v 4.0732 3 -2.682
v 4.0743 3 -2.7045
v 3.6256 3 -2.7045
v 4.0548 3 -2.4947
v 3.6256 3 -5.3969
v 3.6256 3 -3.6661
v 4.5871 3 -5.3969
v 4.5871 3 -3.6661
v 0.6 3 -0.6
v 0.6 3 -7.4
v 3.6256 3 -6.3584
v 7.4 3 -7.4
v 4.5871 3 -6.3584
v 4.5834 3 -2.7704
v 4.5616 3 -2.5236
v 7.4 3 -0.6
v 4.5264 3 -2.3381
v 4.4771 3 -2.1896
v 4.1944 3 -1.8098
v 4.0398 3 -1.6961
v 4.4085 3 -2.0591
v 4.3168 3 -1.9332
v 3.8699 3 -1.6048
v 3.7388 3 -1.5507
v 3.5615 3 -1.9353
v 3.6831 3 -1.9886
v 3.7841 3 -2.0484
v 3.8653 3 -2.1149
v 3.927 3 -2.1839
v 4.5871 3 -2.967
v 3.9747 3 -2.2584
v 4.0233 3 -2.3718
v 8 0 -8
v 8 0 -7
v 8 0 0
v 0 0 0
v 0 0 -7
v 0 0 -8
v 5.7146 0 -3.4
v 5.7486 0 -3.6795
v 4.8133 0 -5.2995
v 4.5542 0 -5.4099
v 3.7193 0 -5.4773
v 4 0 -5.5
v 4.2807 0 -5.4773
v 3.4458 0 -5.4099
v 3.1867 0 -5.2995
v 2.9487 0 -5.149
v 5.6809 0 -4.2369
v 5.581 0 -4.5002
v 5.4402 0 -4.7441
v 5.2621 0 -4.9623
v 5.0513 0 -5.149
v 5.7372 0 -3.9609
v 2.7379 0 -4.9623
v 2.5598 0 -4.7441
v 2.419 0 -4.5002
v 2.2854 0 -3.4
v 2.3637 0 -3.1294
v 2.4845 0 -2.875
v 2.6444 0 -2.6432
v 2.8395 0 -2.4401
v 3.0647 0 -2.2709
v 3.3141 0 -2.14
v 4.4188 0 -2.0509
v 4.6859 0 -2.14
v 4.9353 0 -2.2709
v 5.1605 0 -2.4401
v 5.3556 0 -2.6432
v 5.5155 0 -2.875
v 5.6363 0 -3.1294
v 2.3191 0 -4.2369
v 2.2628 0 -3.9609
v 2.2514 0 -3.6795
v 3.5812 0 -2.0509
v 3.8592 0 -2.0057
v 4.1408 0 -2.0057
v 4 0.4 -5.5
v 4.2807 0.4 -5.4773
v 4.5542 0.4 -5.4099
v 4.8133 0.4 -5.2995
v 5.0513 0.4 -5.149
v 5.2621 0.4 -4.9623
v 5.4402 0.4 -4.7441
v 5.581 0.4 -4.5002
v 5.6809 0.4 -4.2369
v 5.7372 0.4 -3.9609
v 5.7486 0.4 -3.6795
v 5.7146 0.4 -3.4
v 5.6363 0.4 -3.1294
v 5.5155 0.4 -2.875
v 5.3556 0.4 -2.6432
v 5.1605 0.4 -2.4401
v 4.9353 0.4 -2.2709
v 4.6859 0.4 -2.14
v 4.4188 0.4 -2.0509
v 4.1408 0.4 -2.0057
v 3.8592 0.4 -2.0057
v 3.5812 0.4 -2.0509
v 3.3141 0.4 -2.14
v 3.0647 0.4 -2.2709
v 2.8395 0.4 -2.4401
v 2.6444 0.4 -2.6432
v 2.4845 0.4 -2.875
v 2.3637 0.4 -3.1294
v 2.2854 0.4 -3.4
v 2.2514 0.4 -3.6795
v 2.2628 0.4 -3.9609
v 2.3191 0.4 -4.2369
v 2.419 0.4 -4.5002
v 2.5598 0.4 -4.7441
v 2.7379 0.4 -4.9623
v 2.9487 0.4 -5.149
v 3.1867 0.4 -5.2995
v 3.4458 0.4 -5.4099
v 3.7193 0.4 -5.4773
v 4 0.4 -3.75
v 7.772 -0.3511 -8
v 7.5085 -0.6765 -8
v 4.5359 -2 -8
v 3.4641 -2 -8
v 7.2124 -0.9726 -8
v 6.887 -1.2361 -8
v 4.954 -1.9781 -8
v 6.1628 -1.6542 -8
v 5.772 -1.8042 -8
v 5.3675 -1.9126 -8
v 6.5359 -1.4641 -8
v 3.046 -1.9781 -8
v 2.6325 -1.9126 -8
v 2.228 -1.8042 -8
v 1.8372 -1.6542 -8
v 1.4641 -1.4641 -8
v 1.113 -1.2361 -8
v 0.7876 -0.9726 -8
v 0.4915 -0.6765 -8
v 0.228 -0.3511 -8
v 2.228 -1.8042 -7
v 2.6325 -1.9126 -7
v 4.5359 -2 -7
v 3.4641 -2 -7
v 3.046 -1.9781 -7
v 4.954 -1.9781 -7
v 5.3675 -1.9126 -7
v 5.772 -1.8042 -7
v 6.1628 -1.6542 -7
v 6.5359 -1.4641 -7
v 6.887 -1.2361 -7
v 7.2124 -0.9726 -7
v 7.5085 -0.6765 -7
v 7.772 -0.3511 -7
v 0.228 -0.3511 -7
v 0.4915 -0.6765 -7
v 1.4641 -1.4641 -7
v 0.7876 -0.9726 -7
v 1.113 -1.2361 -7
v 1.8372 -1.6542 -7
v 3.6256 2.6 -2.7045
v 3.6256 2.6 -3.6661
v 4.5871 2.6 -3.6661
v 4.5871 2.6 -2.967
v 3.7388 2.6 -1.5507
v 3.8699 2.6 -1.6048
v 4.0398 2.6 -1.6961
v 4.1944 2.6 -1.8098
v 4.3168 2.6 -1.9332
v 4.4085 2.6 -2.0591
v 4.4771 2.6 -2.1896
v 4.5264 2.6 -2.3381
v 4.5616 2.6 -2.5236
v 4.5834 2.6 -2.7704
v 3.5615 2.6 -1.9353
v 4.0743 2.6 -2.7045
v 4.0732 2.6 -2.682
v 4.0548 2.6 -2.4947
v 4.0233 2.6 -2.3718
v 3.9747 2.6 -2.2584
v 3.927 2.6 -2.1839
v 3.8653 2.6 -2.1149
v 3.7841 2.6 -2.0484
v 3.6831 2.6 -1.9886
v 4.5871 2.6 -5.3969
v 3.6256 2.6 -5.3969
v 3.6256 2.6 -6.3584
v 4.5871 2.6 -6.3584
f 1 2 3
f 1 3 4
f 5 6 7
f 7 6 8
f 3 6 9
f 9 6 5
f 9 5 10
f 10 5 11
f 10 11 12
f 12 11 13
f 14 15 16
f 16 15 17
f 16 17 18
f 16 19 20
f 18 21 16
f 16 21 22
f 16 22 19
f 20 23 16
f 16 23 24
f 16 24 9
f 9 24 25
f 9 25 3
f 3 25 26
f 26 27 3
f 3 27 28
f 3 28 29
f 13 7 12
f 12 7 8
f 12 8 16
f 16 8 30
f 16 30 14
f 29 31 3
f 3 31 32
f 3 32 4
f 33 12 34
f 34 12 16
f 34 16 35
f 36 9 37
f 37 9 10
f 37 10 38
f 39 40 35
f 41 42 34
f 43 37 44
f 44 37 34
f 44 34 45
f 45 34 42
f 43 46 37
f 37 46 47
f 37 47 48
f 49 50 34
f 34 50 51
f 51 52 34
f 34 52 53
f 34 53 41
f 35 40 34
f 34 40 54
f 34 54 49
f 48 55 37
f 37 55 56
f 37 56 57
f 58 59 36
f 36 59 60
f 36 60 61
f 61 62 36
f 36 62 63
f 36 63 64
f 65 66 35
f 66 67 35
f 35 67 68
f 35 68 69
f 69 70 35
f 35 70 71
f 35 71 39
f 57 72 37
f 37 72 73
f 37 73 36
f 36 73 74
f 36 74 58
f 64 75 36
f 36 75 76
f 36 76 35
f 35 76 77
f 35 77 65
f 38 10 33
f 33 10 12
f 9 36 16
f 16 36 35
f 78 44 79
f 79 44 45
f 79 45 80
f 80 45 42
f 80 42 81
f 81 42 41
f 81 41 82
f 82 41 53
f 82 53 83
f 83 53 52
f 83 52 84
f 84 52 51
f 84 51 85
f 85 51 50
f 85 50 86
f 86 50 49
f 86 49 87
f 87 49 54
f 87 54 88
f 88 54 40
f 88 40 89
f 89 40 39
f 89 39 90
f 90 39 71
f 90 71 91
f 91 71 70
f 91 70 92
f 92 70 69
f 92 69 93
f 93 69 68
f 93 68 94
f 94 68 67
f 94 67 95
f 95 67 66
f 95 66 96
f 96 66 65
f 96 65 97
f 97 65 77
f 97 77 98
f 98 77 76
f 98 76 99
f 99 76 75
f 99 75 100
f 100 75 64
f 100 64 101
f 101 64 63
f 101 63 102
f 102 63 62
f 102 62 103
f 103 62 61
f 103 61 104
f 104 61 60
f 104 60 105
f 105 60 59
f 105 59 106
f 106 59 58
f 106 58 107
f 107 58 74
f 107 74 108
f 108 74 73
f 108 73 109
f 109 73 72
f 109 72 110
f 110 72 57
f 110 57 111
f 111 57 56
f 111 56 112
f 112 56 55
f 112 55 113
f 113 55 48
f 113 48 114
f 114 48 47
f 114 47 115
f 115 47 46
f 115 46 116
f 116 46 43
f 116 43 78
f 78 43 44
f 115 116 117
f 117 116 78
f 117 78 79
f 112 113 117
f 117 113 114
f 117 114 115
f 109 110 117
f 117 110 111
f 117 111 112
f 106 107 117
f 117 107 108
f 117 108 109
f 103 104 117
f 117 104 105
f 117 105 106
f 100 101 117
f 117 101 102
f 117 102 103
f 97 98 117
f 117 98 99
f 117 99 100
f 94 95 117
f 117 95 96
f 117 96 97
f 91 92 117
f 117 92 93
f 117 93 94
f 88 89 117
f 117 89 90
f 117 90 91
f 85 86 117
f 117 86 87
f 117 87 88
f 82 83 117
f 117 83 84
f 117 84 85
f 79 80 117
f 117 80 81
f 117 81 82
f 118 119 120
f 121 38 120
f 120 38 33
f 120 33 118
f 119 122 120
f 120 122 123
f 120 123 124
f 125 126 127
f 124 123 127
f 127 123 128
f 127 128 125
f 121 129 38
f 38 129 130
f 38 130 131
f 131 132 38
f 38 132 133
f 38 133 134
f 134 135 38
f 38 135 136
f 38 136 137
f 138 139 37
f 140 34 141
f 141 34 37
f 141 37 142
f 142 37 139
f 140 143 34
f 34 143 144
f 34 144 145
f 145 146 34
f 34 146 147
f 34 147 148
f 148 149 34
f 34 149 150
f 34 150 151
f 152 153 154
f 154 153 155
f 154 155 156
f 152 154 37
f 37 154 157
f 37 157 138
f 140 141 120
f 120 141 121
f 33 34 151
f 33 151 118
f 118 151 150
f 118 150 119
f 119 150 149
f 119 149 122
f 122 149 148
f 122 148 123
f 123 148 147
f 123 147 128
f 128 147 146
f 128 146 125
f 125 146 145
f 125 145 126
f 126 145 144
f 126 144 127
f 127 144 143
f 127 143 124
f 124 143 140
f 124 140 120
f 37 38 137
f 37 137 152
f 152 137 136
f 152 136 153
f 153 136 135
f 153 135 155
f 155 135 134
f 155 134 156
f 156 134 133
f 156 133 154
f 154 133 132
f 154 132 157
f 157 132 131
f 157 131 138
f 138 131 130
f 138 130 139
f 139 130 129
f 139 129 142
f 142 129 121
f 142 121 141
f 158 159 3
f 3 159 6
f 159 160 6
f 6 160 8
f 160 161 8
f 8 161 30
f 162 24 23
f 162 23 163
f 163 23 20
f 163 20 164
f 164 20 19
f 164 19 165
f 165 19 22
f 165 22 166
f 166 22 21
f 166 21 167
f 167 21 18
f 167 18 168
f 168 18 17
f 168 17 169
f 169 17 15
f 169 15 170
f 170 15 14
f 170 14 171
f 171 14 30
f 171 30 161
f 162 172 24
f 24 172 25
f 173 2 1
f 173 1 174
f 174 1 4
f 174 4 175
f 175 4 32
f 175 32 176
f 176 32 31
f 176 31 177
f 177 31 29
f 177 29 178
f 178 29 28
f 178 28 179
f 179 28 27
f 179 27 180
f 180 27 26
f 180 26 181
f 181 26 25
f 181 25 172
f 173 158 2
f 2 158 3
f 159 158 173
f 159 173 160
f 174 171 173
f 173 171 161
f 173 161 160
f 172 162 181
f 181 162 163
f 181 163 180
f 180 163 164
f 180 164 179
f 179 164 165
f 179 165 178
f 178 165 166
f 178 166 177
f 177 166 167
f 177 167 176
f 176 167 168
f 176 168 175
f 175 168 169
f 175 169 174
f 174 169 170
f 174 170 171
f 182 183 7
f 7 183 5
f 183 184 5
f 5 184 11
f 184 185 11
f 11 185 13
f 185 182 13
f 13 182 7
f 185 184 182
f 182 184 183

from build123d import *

# Parameters (mm, degrees)
SKETCH1_W               = 8
SKETCH1_H               = 8
BOSS_EXTRUDE1_DEPTH     = 3
CUT_EXTRUDE1_DEPTH      = 12.704699911
CUT_EXTRUDE1_DEPTH_BACK = 12.704699911
CUT_EXTRUDE2_DEPTH      = 11
SKETCH4_R               = 1.75
CUT_EXTRUDE3_DEPTH      = 0.4
SKETCH5_W               = 8
SKETCH5_H               = 1
BOSS_EXTRUDE2_DEPTH     = 2
FILLET1_R               = 4
SKETCH6_W               = 0.961538461
SKETCH6_H               = 0.961538462
CUT_EXTRUDE4_DEPTH      = 0.4


with BuildPart() as part:
    # Sketch1 → Boss-Extrude1 (new body)
    with BuildSketch(Plane(origin=(0, 0, 0), x_dir=(1, 0, 0), z_dir=(0, 1, 0))):
        with Locations((4, 4)):
            Rectangle(SKETCH1_W, SKETCH1_H)
    extrude(amount=BOSS_EXTRUDE1_DEPTH)

    # Sketch2 → Cut-Extrude1 (cut, two sides: drawn at the far end of the back side and taken through both)
    with BuildSketch(Plane.XY.offset(-CUT_EXTRUDE1_DEPTH_BACK)):
        Polygon((0, 0), (0.6, 3), (0, 3), align=None)
        Polygon((8, 0), (7.4, 3), (8, 3), align=None)
    extrude(amount=CUT_EXTRUDE1_DEPTH + CUT_EXTRUDE1_DEPTH_BACK, mode=Mode.SUBTRACT)

    # Sketch3 → Cut-Extrude2 (cut)
    with BuildSketch(Plane(origin=(0, 0, 0), x_dir=(0, 0, -1), z_dir=(1, 0, 0))):
        Polygon((0, 0), (0.6, 3), (0, 3), align=None)
        Polygon((8, 3), (7.4, 3), (8, 0), align=None)
    extrude(amount=CUT_EXTRUDE2_DEPTH, mode=Mode.SUBTRACT)

    # Sketch4 → Cut-Extrude3 (cut)
    with BuildSketch(Plane.XZ):
        with Locations(Location((4, -3.75, 0), (0, 0, 270))):
            Circle(SKETCH4_R)
    extrude(amount=-CUT_EXTRUDE3_DEPTH, mode=Mode.SUBTRACT)

    # Sketch5 → Boss-Extrude2 (add)
    with BuildSketch(Plane.XZ):
        with Locations((4, -7.5)):
            Rectangle(SKETCH5_W, SKETCH5_H)
    extrude(amount=BOSS_EXTRUDE2_DEPTH)

    # Fillet1
    # the kernel refuses this fillet: 4 mm, written as the material it takes off along each edge
    with BuildSketch(Plane(origin=(8, -2, -16.660254038), x_dir=(0, 1, 0), z_dir=(0, 0, 1)), Plane(origin=(0, -2, 1.660254038), x_dir=(0, 1, 0), z_dir=(0, 0, -1))) as fillet1_piece_1:
        with BuildLine():
            CenterArc((4, 3.464101615), FILLET1_R, 180, 60)
            Line((0, 3.464101615), (-0.08, 3.464101615))
            Line((-0.08, 3.464101615), (-0.08, 0))
            Line((-0.08, 0), (0, -0.08))
            ThreePointArc((0, -0.08), (1, -0.08), (1.96, -0.069282032))
            Line((1.96, -0.069282032), (2, 0))
        make_face()
    extrude(amount=18.320508076, mode=Mode.SUBTRACT)

    # Sketch6 → Cut-Extrude4 (cut)
    with BuildSketch(Plane(origin=(0, 3, 0), x_dir=(1, 0, 0), z_dir=(0, 1, 0))):
        with Locations((4.106375193, 5.877622732)):
            Rectangle(SKETCH6_W, SKETCH6_H)
        with BuildLine():
            Line((3.625605963, 3.666084271), (4.587144424, 3.666084271))
            Line((4.587144424, 3.666084271), (4.587144424, 2.966965681))
            add(Edge.make_bspline(
                [(4.587144424, 2.966965681), (4.586700802, 2.899821455), (4.585863185, 2.773044347), (4.571180714, 2.594207821), (4.550779556, 2.437158718), (4.518324342, 2.299878361), (4.47486997, 2.175902827), (4.413432502, 2.062461013), (4.337876173, 1.953901165), (4.245458326, 1.85350819), (4.139144335, 1.760654771), (4.017702284, 1.679908688), (3.88401418, 1.607967915), (3.787969656, 1.570094118), (3.738787052, 1.550699655)],
                knots=[0, 0, 0, 0, 1.347156832, 2.543608823, 3.599300285, 4.522475688, 5.370350604, 6.227678973, 7.103274953, 8.018757603, 8.959280198, 9.929437417, 10.939703653, 12, 12, 12, 12], degree=3))
            Line((3.738787052, 1.550699655), (3.561503399, 1.93531504))
            add(Edge.make_bspline(
                [(3.561503399, 1.93531504), (3.604439047, 1.952873279), (3.686527672, 1.986442858), (3.795938691, 2.052543314), (3.885105421, 2.129792439), (3.955780801, 2.218165676), (4.006656804, 2.32038588), (4.045456087, 2.435104657), (4.0674697, 2.56519407), (4.07197182, 2.656725854), (4.074323911, 2.704545809)],
                knots=[0, 0, 0, 0, 1.115416734, 2.132564161, 3.06091458, 3.941973359, 4.836922823, 5.794989041, 6.848011894, 8, 8, 8, 8], degree=3))
            Line((4.074323911, 2.704545809), (3.625605963, 2.704545809))
            Line((3.625605963, 2.704545809), (3.625605963, 3.666084271))
        make_face()
    extrude(amount=-CUT_EXTRUDE4_DEPTH, mode=Mode.SUBTRACT)


solid = part.part
